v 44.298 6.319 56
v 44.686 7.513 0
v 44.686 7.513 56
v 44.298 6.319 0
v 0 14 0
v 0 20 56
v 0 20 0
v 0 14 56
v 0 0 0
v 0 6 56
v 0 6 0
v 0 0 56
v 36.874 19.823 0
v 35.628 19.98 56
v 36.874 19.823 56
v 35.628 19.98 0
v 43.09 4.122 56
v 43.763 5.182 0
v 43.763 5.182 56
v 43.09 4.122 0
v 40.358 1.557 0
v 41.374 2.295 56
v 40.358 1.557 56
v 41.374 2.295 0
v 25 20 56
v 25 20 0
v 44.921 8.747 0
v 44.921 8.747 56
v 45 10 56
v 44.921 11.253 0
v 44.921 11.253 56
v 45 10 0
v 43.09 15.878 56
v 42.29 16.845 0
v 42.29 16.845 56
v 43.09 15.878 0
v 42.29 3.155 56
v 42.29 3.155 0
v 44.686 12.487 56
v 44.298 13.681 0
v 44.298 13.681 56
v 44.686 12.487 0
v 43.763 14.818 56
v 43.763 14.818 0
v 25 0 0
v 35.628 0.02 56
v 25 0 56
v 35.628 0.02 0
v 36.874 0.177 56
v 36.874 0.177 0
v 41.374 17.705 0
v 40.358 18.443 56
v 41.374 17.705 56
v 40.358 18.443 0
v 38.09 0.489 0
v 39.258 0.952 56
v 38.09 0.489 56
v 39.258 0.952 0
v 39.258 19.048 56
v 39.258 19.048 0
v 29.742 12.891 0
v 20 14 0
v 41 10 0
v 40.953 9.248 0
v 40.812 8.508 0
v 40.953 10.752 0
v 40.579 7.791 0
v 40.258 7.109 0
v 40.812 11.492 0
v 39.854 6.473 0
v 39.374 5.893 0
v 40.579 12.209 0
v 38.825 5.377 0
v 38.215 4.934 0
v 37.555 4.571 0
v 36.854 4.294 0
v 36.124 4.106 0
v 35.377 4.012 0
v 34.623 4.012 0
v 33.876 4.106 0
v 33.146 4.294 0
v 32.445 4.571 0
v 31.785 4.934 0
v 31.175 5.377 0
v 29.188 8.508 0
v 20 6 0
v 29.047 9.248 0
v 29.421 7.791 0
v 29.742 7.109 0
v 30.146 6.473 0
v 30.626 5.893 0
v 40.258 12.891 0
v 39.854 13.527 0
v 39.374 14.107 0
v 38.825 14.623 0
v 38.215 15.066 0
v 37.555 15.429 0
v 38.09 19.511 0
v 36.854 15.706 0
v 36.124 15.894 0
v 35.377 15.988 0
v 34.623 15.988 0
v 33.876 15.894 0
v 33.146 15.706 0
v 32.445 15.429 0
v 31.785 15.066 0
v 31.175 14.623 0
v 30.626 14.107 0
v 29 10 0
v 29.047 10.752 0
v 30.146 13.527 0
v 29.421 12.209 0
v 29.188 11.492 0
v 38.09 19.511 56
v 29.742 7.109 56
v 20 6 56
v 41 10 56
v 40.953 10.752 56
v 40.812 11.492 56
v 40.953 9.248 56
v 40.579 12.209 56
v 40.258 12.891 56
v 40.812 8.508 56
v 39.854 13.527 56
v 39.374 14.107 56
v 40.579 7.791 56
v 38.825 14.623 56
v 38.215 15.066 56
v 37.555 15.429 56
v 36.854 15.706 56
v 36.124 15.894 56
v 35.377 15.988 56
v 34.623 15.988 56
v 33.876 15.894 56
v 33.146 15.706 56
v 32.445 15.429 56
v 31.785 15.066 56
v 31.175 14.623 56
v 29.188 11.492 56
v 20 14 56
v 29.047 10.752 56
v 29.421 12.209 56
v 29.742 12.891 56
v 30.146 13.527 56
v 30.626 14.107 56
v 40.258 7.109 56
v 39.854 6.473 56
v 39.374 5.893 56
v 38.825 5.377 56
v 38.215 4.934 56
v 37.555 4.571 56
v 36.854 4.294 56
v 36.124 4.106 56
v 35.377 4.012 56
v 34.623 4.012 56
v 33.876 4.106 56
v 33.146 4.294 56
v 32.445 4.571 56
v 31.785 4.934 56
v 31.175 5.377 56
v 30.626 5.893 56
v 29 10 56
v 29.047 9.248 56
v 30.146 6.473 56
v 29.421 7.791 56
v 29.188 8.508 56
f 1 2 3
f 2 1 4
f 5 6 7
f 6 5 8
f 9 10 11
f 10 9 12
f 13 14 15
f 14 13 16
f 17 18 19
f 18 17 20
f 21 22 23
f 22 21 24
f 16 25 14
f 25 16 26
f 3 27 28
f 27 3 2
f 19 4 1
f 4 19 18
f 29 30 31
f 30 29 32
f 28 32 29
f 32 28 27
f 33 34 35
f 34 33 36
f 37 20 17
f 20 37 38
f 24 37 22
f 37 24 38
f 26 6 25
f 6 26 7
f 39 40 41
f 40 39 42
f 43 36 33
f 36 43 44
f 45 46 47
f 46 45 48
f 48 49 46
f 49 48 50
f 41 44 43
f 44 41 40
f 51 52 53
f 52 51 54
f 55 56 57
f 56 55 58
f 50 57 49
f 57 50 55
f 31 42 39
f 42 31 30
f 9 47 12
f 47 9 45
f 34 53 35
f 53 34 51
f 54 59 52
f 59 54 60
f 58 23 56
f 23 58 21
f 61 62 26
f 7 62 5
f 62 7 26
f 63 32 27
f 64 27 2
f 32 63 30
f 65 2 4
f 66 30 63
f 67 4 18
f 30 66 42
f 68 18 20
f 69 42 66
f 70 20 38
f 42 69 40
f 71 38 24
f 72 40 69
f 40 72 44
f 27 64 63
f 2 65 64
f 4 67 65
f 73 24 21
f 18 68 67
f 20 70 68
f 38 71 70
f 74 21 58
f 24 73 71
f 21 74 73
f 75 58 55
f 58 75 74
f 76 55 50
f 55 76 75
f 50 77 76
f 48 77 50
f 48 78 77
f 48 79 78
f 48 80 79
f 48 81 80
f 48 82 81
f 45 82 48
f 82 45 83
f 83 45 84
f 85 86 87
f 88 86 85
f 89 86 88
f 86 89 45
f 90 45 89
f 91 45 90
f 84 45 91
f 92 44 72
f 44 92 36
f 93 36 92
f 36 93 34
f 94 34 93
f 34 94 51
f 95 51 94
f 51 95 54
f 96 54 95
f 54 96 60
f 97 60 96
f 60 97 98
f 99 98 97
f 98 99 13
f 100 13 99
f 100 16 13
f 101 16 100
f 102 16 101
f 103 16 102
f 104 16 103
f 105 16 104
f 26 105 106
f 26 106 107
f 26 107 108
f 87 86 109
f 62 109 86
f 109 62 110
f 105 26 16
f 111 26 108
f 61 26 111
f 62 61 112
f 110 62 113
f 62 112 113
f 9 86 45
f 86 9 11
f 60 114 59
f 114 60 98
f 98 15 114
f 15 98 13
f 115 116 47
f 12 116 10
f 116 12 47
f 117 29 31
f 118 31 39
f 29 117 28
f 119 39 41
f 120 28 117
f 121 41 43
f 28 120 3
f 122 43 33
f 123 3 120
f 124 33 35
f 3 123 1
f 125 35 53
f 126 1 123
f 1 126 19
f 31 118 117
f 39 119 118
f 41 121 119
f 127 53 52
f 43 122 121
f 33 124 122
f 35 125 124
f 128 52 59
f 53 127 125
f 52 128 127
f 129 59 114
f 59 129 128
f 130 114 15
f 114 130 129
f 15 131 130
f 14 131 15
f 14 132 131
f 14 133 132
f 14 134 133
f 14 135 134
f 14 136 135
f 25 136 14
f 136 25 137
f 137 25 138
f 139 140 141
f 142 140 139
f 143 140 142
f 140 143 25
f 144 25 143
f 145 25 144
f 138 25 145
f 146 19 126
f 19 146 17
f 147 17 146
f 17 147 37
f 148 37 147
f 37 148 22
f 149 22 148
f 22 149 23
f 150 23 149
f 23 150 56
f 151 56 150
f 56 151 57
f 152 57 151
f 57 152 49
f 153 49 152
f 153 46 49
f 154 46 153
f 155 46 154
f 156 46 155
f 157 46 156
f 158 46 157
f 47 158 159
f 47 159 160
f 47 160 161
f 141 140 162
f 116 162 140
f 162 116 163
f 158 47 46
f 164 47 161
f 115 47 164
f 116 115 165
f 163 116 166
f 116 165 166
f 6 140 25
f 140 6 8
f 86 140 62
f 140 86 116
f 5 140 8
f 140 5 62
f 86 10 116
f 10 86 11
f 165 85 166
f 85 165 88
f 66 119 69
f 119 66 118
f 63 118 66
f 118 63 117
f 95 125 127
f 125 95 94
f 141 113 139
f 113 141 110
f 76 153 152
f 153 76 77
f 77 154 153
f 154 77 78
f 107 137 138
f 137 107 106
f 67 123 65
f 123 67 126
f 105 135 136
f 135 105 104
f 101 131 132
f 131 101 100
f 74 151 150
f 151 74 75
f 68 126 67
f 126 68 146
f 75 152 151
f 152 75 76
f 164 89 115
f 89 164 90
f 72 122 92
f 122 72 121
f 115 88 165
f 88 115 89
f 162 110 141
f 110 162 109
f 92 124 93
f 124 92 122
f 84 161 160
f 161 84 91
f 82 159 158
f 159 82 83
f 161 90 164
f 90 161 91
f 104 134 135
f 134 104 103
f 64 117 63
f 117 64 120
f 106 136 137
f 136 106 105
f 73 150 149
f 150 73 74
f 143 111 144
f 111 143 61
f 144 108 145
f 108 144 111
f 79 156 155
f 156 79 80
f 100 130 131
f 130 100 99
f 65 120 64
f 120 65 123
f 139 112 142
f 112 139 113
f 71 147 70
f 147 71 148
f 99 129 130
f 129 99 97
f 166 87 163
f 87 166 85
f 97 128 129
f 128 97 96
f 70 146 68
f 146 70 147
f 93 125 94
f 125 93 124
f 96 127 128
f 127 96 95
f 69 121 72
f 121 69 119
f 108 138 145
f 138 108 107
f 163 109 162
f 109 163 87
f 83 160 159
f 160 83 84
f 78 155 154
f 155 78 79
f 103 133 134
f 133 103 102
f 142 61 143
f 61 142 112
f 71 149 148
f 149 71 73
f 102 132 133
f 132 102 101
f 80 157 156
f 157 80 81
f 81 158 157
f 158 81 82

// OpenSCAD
// file: ../references.scad
// Size
//Naming
// _PT = printable
// _ES = exact size
// _IS = insertable with force but no gaps

//--------------threaded rod  (TR)

//----M5

TR_M5_Diameter_ES = 5.8;
//for a hole 
TR_M5_Diamater_IS = 6;
TR_M5_Diamater_PT = 7;


//----M10

TR_M10_Diameter_ES = 9.6;
//for a hole 
TR_M10_Diamater_IS = 10;
TR_M10_Diamater_PT = 12;

//--------------Screw (SC)

//----M5

SC_M5_Diameter_ES = 4.86;
SC_M5_Head_Diameter_ES = 9.24;
SC_M5_Head_Height_ES = 3.0;
//for a hole 
SC_M5_Diamater_IS = 5;
SC_M5_Diamater_PT = 0; //inconnu pour le moment


//--------------Zip ties (ZT)

//Big zip ties I got    

ZT_length_ES = 300;
ZT_width_ES = 4.8;
ZT_height_ES = 1;

ZT_width_PT = 7;
ZT_height_PT = 3;


//--------------Switch (SW)
//switch from castorama 
SW_length_ES = 13;
SW_width_ES = 8;
SW_height_ES = 14;

SW_length_PT = 15;
SW_width_PT = 10;
SW_height_PT = 16;


//https://d138zd1ktt9iqe.cloudfront.net/media/seo_landing_files/length-width-height-01-1646654708.png
// main file
include <../references.scad>

//Dimension de profile

main_body_height = 56;
main_body_length = 45;
main_body_width = 20;

insert_height = main_body_height;
insert_length = 20;
insert_width = 8;
module main_body(){ 
 hull(){   
    color("pink"){
        cube([main_body_length-main_body_width,main_body_width,main_body_height]);
    }
    color("red"){
        translate([main_body_length-(insert_length/2),main_body_width/2,0]){cylinder(h=main_body_height, r=main_body_width/2, $fn=50);}
        }
}}

module G_insert(){
    color("green"){
        cube([insert_length,insert_width,insert_height]);
    }
}

module threaded_shaft_hole(){
    color("red"){
        cylinder(h=main_body_height, r=(TR_M10_Diamater_PT)/2, $fn=50);
    }
}
module zip_ties_hole(){
    color("purple"){
        //flip 90° the measurements
        cube([ZT_height_PT,main_body_width,ZT_width_PT]);
    }
}

difference(){
    main_body();
    translate([0,main_body_width/2-insert_width/2,0]){
        G_insert();}
        
    translate([main_body_length-(insert_length/2),main_body_width/2,0]){
        threaded_shaft_hole();}
    //translate([main_body_length-ZT_height_PT-0.5,0,main_body_height/3-(ZT_width_PT/2)]){
      //  zip_ties_hole();}
    //translate([main_body_length-ZT_height_PT-0.5,0,(main_body_height/3)*2-(ZT_width_PT/2)]){
        //zip_ties_hole();}
        
    }
